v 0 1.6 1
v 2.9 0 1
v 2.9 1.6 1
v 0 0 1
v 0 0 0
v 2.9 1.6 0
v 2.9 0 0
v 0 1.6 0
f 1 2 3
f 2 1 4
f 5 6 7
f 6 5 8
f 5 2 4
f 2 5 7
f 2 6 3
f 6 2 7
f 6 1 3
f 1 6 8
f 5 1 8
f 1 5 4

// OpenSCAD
/* Warning, this is a very basic generator with a lot of approximation 
input data : [TSOT, N6X, 2.90x1.60mm, 6, , A, C04-00141A]
generated by com.zoubworld.electronics.cad.model3d.Basic
Date : Sun Feb 15 10:50:48 CET 2026
*/

//body
color("black")
translate([0,0,0])
cube([2.9,1.6,1.0], center=false);
